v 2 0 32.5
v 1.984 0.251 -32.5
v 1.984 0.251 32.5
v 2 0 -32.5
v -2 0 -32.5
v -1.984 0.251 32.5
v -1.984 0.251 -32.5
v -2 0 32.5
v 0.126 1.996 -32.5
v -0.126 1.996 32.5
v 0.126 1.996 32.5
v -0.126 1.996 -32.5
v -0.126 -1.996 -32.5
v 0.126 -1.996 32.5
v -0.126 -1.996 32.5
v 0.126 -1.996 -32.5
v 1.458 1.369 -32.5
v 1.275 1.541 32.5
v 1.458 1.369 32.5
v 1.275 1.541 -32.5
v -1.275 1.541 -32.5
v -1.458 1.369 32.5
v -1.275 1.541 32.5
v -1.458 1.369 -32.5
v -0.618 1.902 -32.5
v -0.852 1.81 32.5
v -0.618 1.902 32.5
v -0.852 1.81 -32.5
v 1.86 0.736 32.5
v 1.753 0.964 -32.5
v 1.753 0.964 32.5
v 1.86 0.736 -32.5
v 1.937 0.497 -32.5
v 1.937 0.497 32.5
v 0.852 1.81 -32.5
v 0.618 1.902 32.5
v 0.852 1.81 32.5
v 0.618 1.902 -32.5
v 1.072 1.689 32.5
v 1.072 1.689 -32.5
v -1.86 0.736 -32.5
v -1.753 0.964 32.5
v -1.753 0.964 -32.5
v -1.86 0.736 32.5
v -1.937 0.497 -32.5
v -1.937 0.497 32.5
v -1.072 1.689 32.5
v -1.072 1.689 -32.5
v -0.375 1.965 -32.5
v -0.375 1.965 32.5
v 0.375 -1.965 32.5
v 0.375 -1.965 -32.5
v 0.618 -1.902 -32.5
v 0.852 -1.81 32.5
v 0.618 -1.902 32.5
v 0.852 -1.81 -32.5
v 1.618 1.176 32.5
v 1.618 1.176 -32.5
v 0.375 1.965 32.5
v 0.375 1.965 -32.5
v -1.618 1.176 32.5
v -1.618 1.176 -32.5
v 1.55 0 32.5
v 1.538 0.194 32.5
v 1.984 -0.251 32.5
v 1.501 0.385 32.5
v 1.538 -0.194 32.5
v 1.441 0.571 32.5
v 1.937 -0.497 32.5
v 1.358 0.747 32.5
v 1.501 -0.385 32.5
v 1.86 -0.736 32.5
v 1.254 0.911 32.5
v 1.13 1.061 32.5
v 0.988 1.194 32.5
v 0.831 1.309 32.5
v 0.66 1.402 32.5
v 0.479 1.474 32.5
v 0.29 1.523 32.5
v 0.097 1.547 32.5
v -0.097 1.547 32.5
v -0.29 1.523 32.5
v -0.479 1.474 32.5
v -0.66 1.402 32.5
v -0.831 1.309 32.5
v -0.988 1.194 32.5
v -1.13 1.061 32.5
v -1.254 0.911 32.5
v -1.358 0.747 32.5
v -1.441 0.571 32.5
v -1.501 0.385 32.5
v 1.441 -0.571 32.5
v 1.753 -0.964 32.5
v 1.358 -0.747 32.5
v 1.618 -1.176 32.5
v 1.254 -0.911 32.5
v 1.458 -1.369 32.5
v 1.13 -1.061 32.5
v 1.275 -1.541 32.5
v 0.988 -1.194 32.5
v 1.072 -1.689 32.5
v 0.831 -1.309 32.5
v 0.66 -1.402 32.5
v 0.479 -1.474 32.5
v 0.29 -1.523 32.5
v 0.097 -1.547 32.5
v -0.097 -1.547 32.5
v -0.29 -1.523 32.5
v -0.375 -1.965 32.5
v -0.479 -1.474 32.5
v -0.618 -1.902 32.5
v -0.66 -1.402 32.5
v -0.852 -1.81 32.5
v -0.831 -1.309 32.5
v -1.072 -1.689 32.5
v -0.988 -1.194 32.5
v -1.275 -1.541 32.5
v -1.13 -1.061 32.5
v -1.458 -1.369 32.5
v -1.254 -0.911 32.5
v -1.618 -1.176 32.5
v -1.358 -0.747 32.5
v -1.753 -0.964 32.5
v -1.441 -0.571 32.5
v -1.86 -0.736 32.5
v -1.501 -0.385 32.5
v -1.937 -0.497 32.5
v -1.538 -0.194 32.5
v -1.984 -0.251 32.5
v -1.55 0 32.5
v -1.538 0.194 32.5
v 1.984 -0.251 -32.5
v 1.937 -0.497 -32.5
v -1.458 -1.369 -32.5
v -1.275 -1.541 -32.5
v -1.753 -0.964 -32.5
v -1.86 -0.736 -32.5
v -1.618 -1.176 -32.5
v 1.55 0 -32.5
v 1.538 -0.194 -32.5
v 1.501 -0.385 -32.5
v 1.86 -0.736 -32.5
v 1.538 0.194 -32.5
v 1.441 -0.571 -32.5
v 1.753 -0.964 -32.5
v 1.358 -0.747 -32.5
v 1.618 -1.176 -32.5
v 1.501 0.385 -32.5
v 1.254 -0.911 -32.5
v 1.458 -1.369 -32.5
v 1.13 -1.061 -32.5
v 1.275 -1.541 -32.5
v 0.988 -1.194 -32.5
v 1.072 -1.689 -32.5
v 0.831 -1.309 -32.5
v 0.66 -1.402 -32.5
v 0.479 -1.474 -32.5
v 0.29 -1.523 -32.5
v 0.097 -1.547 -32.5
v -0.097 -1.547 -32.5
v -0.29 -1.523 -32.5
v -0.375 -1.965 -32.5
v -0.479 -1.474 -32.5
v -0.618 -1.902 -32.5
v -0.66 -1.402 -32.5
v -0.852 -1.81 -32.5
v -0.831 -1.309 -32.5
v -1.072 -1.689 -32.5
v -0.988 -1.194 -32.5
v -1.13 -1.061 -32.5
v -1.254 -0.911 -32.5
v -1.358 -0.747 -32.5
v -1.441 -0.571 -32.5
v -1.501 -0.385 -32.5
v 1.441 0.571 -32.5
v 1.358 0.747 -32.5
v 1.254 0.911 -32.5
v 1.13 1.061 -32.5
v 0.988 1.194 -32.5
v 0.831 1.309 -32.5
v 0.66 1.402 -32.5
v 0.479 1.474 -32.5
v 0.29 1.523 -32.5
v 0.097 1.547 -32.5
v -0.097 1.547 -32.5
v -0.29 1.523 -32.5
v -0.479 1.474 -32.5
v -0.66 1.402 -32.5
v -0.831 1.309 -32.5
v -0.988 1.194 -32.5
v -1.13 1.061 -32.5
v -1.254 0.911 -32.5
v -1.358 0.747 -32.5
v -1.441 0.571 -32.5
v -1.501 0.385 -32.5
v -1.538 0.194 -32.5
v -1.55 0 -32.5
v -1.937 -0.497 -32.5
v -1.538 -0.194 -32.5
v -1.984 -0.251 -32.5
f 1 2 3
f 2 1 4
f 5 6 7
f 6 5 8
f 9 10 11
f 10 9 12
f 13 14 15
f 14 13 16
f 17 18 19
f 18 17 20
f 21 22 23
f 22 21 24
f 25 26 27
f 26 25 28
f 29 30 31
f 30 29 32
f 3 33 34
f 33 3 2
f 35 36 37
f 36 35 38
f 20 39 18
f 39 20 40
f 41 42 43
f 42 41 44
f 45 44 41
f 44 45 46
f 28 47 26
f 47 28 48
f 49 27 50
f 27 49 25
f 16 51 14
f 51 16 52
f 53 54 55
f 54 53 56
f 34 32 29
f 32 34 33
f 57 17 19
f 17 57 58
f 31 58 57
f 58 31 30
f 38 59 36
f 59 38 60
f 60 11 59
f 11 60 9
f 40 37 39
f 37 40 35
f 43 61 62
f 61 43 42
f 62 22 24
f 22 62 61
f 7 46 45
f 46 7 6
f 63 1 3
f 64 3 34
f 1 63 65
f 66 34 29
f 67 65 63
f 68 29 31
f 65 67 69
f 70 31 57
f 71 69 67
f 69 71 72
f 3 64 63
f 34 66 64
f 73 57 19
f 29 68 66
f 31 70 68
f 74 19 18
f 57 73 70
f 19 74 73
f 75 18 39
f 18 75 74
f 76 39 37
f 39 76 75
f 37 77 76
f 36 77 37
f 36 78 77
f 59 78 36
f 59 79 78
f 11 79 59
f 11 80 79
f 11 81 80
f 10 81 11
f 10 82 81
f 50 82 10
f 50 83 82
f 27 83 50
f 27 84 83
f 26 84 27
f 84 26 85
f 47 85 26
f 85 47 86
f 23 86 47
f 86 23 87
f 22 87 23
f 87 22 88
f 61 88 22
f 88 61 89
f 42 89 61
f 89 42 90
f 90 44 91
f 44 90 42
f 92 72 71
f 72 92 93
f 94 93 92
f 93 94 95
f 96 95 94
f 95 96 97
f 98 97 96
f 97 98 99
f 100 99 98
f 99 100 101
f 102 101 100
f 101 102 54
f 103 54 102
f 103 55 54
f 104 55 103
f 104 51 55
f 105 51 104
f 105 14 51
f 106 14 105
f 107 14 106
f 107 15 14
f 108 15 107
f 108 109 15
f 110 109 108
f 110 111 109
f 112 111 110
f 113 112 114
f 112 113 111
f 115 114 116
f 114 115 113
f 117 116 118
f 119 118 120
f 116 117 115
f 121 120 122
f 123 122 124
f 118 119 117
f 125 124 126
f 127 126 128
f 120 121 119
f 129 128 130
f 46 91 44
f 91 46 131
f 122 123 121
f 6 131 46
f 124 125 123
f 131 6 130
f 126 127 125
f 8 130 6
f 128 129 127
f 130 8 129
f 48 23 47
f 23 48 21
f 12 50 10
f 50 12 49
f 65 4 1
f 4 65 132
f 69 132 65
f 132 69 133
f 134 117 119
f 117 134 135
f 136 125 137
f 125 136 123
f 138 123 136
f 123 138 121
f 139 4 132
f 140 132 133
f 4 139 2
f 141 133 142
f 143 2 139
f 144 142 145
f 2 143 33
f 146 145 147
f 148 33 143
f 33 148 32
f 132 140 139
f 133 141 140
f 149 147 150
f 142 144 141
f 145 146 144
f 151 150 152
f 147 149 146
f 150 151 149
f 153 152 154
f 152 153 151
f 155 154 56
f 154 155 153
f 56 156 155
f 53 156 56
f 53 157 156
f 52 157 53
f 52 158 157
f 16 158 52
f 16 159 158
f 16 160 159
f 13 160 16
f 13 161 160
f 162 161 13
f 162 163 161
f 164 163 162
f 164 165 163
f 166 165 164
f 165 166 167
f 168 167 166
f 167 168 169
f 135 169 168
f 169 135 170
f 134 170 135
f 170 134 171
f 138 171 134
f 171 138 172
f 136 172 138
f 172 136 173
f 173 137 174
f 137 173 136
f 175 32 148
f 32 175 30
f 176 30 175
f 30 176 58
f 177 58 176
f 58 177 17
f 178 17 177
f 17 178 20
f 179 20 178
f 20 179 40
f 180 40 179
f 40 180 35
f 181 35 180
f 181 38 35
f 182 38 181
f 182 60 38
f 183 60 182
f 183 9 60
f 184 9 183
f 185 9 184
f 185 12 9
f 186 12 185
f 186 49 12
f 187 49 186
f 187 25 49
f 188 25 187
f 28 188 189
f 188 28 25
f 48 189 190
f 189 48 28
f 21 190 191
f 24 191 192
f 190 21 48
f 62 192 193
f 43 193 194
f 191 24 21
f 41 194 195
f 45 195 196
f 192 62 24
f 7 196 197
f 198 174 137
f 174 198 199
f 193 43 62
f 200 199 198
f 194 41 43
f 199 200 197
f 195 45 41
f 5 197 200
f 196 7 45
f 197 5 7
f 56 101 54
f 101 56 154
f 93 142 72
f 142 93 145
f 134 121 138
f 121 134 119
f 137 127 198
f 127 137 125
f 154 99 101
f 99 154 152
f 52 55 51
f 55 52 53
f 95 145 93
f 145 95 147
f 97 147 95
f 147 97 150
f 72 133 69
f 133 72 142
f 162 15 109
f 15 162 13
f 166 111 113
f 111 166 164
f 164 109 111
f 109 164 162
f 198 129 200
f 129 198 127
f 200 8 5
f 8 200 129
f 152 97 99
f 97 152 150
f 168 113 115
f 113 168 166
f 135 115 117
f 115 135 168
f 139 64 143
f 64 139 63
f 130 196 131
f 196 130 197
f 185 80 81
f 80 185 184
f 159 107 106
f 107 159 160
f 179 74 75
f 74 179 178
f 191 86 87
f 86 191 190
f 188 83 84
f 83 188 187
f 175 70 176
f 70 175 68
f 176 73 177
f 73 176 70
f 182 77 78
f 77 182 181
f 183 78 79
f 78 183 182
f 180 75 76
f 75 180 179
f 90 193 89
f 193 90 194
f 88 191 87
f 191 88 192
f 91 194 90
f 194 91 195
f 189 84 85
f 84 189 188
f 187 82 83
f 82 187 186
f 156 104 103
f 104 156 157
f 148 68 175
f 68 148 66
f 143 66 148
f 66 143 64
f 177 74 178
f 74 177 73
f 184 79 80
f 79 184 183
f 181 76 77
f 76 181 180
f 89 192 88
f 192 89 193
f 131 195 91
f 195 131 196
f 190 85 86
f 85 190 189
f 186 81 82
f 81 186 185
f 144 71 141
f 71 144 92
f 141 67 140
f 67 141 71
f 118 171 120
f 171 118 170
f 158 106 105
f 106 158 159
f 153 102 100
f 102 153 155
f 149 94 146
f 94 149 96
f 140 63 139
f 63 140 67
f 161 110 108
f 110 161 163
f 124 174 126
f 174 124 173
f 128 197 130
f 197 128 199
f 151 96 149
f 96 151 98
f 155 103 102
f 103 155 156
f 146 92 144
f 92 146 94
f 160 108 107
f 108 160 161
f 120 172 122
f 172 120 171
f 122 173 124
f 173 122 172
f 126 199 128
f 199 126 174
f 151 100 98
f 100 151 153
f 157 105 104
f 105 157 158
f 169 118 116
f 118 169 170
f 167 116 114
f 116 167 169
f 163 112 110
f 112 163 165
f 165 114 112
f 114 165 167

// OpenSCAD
$fn = 50;


difference() {
	union() {
		translate(v = [0, 0, -32.5000000000]) {
			cylinder(h = 65, r = 2.0000000000);
		}
	}
	union() {
		translate(v = [0, 0, -100.0000000000]) {
			cylinder(h = 200, r = 1.5500000000);
		}
	}
}
